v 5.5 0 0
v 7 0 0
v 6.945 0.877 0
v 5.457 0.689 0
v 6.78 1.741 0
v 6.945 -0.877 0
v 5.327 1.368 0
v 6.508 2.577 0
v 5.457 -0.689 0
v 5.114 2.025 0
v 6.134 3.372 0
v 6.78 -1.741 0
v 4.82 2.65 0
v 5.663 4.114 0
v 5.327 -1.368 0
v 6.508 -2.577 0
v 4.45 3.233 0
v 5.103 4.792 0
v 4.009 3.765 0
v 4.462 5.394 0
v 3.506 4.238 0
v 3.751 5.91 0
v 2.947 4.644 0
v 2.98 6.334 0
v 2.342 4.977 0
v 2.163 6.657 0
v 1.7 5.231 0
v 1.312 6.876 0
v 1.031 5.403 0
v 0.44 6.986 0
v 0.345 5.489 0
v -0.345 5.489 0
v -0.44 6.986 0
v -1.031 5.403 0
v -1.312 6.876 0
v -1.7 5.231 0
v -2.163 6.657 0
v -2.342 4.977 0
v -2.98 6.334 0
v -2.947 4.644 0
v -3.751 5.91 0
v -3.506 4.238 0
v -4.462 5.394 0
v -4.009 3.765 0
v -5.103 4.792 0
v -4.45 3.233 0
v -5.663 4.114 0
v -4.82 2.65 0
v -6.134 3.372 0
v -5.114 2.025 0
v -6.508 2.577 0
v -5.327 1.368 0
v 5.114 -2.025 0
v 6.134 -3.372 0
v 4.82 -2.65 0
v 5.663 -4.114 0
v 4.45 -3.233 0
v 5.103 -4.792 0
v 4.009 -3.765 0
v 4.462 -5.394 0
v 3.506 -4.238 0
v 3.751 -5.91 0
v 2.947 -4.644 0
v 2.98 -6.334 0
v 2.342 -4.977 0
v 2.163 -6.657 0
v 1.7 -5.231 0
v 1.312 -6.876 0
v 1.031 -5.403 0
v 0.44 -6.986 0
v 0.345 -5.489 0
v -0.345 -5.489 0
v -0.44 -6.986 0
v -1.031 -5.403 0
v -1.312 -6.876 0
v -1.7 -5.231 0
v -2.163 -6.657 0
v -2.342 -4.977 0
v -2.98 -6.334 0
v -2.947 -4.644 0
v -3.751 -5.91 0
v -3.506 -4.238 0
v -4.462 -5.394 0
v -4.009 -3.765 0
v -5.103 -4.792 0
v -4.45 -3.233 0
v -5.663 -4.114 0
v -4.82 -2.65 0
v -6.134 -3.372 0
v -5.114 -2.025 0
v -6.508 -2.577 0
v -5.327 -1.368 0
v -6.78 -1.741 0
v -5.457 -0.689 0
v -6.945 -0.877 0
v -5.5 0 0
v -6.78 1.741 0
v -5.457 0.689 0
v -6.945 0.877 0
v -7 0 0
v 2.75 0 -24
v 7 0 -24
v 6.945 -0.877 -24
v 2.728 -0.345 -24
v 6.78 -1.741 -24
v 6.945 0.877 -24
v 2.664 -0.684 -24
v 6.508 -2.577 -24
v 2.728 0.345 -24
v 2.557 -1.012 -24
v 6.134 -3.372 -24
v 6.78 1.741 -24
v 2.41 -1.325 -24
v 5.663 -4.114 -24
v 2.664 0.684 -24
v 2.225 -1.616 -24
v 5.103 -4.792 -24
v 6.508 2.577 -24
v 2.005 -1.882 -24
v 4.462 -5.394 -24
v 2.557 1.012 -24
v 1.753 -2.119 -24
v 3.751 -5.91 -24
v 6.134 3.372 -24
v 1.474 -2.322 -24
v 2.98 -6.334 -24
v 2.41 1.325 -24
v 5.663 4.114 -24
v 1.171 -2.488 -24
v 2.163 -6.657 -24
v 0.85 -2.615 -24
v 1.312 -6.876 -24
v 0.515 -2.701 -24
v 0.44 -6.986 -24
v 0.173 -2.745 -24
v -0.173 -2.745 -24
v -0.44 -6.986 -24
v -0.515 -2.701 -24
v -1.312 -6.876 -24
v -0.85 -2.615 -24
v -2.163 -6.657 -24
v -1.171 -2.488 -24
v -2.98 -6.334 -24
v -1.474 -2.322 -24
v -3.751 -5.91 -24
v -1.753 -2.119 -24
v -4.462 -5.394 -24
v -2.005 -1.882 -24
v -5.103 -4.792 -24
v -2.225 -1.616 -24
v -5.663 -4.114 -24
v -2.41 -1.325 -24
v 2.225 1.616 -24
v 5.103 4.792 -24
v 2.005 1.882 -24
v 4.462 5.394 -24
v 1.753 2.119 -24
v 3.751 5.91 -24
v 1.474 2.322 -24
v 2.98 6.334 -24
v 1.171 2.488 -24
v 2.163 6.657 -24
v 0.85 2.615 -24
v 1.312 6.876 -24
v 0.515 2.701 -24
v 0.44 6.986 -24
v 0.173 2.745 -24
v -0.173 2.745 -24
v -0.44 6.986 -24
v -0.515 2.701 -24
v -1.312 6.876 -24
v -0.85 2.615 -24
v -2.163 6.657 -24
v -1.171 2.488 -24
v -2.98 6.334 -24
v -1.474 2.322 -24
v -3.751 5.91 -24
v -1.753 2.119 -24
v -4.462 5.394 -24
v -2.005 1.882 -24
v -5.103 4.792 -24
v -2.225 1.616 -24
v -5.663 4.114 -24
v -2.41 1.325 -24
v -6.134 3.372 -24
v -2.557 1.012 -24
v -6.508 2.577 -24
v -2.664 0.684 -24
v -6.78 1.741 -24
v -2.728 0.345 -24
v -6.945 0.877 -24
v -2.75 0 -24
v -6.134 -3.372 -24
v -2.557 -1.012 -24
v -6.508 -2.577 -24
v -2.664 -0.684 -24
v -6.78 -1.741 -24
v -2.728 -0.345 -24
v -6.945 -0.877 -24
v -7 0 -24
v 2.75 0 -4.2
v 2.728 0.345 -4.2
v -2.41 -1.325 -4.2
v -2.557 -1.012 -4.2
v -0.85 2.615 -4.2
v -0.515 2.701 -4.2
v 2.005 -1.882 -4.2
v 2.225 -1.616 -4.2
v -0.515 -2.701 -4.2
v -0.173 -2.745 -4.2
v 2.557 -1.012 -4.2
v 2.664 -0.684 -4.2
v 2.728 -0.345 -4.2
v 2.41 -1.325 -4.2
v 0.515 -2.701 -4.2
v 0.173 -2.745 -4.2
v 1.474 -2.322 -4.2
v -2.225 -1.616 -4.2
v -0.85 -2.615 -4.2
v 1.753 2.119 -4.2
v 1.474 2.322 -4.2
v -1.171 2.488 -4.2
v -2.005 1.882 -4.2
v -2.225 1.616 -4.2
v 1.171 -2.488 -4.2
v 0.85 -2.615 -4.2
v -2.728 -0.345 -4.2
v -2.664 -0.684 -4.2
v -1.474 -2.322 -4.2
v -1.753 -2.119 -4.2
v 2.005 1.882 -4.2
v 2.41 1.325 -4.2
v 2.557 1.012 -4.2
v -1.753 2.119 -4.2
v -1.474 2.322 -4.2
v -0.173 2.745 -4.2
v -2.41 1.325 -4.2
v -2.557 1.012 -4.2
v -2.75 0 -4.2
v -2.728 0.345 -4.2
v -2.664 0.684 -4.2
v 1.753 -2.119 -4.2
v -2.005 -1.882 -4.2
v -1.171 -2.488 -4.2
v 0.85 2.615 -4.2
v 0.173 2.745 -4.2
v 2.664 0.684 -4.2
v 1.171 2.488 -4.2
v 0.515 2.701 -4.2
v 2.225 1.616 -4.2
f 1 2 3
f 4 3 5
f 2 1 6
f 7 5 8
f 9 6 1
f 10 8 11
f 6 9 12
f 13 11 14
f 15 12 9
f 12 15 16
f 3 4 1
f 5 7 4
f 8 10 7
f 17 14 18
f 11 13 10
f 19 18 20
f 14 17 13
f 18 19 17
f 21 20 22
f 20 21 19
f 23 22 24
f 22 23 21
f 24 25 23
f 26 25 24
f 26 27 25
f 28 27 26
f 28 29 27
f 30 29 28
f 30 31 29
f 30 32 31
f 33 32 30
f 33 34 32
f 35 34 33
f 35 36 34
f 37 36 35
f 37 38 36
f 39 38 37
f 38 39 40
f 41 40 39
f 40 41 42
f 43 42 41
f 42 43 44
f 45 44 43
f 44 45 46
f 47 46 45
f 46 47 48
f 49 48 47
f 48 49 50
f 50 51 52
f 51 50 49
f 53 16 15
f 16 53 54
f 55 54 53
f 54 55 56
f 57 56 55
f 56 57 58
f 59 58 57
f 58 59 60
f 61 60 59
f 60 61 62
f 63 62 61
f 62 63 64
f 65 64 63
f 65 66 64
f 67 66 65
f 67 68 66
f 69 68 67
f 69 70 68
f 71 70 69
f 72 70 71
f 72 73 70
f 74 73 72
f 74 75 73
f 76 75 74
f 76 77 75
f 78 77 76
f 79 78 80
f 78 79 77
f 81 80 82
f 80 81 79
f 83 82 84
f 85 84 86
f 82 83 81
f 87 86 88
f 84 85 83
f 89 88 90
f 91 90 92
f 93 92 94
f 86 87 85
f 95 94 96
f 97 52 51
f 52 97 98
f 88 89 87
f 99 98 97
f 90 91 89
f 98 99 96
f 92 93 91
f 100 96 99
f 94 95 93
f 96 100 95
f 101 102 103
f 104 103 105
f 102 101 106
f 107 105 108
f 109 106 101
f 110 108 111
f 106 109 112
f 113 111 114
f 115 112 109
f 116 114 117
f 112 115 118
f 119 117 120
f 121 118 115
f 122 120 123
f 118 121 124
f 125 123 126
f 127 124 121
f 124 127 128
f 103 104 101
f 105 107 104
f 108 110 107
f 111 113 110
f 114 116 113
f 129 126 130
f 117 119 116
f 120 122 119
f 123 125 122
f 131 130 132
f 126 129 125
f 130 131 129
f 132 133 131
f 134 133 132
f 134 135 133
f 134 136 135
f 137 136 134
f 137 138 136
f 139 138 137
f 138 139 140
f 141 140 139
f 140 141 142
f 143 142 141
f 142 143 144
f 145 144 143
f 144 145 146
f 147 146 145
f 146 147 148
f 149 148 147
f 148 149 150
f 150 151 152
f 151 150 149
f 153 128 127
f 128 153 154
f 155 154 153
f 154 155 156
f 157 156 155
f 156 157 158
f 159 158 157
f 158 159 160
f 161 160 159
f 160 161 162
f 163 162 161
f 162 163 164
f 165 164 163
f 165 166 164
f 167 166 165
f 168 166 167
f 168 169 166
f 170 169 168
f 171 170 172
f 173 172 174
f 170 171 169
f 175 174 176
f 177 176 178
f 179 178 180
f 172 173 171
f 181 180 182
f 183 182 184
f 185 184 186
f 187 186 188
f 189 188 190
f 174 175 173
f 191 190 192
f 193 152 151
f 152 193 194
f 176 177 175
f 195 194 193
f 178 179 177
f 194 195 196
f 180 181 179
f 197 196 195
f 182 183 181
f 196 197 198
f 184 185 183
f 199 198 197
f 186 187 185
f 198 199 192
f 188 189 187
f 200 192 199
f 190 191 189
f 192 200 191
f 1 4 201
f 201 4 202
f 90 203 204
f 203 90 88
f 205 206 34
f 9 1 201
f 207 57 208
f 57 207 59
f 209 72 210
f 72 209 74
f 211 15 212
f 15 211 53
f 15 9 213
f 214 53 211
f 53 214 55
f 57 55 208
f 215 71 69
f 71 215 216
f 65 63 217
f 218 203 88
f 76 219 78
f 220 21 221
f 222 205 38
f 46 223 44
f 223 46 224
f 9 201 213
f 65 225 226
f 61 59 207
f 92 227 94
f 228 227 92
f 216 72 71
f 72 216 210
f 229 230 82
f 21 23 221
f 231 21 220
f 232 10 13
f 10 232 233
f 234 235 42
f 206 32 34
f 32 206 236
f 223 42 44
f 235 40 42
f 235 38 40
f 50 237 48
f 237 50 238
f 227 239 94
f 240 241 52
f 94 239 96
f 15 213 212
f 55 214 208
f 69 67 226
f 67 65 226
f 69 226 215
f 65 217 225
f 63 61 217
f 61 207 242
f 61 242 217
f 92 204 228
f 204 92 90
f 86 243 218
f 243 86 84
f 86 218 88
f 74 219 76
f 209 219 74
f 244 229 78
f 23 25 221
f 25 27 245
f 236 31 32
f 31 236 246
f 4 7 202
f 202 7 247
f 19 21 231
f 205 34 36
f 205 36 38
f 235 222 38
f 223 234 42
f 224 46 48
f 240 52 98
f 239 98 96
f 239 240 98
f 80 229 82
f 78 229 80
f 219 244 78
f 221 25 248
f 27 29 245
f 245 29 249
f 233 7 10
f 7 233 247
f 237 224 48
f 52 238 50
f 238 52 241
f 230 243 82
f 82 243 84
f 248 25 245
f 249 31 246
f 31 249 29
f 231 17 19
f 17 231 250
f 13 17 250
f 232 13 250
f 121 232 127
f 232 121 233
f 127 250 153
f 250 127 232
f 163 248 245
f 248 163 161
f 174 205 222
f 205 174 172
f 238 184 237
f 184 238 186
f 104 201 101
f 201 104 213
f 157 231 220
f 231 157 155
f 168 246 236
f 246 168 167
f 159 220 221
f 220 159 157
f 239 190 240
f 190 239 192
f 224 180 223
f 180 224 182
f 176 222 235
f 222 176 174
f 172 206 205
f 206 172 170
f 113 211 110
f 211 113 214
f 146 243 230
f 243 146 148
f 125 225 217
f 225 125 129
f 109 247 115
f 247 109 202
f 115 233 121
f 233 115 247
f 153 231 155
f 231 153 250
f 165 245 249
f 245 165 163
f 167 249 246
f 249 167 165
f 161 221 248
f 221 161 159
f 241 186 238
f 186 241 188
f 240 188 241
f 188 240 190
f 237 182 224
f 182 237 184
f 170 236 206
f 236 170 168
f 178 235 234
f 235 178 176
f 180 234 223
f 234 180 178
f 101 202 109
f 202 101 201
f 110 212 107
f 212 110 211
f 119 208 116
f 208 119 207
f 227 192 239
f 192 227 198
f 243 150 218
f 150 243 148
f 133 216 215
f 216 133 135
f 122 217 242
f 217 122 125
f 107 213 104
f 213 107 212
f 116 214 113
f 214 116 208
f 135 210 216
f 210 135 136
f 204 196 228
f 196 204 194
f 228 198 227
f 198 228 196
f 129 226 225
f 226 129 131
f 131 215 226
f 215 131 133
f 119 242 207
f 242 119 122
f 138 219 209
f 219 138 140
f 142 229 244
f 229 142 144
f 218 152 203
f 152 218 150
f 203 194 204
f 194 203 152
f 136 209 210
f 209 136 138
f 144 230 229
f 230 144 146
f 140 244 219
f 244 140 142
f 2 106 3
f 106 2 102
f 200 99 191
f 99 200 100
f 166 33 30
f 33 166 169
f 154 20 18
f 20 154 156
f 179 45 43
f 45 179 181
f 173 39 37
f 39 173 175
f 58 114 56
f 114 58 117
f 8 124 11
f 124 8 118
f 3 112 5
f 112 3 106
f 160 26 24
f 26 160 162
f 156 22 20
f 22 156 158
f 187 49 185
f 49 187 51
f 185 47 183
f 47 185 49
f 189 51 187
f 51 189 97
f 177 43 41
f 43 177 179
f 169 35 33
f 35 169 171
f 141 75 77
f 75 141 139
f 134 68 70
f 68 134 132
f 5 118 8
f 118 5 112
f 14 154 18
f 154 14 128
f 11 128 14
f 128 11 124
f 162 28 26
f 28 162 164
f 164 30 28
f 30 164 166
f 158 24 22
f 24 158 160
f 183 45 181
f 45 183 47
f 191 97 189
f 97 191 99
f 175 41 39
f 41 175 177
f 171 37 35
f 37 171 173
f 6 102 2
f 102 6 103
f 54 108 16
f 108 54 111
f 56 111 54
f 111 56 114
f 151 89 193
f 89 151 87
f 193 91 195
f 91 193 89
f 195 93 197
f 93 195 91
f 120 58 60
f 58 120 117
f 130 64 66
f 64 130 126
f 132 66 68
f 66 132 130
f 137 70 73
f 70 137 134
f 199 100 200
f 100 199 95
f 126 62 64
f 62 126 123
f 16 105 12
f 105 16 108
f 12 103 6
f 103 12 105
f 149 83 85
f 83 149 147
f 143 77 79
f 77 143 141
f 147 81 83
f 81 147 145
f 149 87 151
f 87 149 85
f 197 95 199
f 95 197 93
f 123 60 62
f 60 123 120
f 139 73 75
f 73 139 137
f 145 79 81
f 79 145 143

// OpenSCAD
$fn = 50;


difference() {
	union() {
		translate(v = [0, 0, -24.0000000000]) {
			cylinder(h = 24, r = 7.0000000000);
		}
	}
	union() {
		translate(v = [0, 0, 0]) {
			rotate(a = [0, 0, 0]) {
				difference() {
					union() {
						#translate(v = [0, 0, -24.0000000000]) {
							cylinder(h = 24, r = 2.2500000000);
						}
						#translate(v = [0, 0, -4.2000000000]) {
							cylinder(h = 4.2000000000, r1 = 2.7500000000, r2 = 5.5000000000);
						}
						#translate(v = [0, 0, -24.0000000000]) {
							cylinder(h = 24, r = 2.7500000000);
						}
						#translate(v = [0, 0, -24.0000000000]) {
							cylinder(h = 24, r = 2.2500000000);
						}
					}
					union();
				}
			}
		}
	}
}
